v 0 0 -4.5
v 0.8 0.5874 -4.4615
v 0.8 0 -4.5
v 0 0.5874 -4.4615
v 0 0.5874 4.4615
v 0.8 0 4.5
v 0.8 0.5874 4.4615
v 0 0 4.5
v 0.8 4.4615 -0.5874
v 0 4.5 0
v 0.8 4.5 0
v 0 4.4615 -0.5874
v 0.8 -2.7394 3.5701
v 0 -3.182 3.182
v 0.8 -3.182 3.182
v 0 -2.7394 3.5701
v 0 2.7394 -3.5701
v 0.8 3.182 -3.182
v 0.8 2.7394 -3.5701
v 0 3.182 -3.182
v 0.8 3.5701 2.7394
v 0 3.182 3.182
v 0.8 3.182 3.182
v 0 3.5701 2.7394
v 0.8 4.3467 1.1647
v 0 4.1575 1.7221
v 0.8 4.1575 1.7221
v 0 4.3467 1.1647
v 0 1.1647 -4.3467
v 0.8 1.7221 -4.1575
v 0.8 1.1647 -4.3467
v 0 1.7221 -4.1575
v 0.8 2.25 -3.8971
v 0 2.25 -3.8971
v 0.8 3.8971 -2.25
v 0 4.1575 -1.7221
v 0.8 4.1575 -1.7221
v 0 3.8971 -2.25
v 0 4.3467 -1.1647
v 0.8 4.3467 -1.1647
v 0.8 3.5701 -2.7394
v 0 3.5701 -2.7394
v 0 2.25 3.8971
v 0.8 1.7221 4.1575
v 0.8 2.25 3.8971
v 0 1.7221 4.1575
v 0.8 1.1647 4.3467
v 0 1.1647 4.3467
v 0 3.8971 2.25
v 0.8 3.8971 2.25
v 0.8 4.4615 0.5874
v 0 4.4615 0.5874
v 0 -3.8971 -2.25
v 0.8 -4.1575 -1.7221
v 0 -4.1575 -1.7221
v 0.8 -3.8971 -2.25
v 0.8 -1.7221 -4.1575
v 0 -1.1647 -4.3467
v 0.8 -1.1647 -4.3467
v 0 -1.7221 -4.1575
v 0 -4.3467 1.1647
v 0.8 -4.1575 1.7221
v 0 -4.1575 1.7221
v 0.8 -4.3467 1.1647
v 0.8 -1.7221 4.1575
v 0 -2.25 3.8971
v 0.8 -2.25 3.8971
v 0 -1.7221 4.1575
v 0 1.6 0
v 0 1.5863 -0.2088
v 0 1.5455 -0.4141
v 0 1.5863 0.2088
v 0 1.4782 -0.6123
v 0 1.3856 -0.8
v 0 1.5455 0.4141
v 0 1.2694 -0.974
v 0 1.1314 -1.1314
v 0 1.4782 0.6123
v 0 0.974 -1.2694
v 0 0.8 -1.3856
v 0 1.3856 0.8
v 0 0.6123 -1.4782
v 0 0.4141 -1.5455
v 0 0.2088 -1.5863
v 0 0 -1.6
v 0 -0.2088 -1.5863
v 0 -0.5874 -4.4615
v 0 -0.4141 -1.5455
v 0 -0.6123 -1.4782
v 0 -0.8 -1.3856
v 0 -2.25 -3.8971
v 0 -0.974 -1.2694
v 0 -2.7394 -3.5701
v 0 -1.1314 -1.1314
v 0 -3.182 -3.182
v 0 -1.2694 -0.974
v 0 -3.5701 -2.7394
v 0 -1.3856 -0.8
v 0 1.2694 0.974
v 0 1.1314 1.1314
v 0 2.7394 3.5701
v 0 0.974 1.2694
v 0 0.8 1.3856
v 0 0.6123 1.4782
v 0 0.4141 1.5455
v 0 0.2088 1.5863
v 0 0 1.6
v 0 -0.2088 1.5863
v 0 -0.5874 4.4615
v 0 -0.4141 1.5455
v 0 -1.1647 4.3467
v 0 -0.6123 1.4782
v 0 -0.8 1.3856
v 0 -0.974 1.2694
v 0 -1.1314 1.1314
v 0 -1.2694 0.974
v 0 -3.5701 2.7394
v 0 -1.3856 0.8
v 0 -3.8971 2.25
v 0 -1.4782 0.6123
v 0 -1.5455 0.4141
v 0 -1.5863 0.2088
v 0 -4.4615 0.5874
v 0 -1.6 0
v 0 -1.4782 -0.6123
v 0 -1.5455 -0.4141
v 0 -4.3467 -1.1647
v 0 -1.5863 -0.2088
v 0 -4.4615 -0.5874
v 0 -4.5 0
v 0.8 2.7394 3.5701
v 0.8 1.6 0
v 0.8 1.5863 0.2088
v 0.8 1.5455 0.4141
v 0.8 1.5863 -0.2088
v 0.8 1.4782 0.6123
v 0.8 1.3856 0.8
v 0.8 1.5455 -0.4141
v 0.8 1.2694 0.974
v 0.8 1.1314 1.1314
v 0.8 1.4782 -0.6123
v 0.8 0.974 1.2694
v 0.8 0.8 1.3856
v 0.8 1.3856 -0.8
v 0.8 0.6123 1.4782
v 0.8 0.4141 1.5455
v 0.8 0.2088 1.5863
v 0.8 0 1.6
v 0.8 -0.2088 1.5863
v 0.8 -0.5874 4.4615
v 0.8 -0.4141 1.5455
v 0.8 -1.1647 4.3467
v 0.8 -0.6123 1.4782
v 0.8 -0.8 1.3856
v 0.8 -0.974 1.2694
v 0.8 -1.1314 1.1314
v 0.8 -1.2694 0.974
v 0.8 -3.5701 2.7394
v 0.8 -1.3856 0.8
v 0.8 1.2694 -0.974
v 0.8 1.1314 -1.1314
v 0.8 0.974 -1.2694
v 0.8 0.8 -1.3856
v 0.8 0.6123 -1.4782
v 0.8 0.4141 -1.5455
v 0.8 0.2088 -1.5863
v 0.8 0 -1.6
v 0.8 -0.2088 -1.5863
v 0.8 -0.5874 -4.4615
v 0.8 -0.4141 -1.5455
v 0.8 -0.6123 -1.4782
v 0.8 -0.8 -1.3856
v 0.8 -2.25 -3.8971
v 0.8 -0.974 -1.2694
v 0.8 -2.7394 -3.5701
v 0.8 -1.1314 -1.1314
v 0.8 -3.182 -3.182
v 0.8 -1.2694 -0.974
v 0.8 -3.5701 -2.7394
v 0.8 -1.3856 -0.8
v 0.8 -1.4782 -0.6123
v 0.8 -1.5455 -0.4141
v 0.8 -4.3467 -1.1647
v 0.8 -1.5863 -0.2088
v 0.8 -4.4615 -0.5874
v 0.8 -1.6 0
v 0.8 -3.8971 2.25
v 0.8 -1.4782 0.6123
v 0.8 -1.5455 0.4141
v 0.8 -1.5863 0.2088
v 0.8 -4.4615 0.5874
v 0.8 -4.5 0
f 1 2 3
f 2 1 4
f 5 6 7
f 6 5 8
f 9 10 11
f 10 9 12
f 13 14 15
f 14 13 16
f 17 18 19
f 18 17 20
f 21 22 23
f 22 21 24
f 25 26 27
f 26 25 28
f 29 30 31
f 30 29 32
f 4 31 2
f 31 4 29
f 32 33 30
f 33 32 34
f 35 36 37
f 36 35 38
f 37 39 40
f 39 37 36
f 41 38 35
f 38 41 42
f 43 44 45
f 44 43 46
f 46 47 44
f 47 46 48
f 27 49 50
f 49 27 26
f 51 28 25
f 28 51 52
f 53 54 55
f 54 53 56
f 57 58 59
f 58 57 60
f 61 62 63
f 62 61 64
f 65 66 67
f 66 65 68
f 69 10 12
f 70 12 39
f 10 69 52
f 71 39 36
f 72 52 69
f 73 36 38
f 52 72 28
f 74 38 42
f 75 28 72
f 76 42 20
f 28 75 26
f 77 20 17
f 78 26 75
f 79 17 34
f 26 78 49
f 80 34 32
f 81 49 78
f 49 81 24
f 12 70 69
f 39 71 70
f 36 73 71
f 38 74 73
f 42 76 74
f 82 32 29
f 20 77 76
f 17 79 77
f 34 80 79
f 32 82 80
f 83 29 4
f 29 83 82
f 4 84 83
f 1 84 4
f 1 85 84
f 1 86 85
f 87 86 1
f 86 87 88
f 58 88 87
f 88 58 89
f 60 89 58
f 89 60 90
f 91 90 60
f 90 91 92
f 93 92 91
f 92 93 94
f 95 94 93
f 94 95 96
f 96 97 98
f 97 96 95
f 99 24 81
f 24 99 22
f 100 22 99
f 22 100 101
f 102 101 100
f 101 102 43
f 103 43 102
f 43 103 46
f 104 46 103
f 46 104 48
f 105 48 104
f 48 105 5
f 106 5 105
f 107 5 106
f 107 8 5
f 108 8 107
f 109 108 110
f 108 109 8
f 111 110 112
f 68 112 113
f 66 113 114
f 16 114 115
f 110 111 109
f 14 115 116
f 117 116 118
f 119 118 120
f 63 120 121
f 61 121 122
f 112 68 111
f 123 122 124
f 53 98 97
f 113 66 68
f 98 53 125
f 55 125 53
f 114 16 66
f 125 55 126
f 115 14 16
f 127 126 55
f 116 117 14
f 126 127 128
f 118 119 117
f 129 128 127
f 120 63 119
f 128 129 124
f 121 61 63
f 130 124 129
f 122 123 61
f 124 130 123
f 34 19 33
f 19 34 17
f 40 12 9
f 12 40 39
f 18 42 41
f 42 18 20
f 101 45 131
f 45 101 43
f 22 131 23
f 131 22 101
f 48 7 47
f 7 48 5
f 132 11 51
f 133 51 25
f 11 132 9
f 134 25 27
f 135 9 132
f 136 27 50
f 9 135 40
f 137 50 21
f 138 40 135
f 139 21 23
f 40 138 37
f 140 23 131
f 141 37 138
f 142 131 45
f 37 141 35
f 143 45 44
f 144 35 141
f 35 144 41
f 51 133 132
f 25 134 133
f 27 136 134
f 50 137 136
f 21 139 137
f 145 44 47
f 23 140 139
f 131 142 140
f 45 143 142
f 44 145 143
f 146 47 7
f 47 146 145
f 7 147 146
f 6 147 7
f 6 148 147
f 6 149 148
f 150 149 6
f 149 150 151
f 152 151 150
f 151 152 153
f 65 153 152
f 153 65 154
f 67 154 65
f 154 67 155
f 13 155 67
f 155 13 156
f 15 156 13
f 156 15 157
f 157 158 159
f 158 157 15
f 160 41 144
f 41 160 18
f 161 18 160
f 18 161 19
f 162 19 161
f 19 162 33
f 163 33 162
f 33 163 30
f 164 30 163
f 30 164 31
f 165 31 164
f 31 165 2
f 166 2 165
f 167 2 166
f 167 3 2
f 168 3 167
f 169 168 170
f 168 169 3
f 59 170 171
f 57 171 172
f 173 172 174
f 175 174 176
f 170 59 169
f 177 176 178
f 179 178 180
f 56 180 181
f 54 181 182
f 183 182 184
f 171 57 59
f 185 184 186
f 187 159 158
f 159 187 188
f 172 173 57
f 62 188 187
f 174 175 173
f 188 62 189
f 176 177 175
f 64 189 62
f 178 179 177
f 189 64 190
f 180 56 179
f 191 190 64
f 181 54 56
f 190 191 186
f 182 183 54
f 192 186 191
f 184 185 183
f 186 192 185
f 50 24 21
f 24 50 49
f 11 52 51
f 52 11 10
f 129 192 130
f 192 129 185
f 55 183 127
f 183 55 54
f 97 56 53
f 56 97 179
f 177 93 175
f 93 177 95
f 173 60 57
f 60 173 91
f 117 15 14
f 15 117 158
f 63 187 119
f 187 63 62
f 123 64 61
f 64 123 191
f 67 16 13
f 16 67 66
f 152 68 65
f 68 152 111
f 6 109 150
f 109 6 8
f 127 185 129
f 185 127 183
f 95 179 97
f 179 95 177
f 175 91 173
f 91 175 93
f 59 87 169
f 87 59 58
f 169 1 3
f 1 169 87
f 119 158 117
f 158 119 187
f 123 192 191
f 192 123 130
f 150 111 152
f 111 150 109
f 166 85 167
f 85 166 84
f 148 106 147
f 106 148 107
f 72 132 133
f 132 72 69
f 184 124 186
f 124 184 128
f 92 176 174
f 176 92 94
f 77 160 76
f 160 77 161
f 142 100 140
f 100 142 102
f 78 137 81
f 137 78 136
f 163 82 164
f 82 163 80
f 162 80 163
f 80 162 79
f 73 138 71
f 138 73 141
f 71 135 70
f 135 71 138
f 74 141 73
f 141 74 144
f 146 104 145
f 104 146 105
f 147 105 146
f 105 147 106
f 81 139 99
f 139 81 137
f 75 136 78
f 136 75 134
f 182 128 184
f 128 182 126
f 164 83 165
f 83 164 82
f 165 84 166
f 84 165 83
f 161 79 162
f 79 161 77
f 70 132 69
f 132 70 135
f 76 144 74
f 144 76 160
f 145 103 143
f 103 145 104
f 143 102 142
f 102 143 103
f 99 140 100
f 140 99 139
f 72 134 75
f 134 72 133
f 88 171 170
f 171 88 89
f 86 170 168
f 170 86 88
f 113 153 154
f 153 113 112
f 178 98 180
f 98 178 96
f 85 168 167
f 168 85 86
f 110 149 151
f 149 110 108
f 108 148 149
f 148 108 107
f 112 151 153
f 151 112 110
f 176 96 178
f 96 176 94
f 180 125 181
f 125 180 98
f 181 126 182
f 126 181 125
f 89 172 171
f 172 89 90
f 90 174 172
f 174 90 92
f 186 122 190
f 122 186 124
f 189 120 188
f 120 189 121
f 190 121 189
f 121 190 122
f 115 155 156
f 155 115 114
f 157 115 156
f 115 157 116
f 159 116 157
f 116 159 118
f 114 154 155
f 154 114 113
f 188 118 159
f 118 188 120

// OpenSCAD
/**********************************************************************************************************************
 **
 ** parts/vitamins/washer_large_M3.scad
 **
 ** This file renders a washer of the dimensions specified by the file name.
 **
 **********************************************************************************************************************/

$fn = 48;

rotate([0, 90, 0])
	difference() {
		cylinder(d = 9.0, h = 0.8);
		cylinder(d = 3.2, h = 0.8);
	}
